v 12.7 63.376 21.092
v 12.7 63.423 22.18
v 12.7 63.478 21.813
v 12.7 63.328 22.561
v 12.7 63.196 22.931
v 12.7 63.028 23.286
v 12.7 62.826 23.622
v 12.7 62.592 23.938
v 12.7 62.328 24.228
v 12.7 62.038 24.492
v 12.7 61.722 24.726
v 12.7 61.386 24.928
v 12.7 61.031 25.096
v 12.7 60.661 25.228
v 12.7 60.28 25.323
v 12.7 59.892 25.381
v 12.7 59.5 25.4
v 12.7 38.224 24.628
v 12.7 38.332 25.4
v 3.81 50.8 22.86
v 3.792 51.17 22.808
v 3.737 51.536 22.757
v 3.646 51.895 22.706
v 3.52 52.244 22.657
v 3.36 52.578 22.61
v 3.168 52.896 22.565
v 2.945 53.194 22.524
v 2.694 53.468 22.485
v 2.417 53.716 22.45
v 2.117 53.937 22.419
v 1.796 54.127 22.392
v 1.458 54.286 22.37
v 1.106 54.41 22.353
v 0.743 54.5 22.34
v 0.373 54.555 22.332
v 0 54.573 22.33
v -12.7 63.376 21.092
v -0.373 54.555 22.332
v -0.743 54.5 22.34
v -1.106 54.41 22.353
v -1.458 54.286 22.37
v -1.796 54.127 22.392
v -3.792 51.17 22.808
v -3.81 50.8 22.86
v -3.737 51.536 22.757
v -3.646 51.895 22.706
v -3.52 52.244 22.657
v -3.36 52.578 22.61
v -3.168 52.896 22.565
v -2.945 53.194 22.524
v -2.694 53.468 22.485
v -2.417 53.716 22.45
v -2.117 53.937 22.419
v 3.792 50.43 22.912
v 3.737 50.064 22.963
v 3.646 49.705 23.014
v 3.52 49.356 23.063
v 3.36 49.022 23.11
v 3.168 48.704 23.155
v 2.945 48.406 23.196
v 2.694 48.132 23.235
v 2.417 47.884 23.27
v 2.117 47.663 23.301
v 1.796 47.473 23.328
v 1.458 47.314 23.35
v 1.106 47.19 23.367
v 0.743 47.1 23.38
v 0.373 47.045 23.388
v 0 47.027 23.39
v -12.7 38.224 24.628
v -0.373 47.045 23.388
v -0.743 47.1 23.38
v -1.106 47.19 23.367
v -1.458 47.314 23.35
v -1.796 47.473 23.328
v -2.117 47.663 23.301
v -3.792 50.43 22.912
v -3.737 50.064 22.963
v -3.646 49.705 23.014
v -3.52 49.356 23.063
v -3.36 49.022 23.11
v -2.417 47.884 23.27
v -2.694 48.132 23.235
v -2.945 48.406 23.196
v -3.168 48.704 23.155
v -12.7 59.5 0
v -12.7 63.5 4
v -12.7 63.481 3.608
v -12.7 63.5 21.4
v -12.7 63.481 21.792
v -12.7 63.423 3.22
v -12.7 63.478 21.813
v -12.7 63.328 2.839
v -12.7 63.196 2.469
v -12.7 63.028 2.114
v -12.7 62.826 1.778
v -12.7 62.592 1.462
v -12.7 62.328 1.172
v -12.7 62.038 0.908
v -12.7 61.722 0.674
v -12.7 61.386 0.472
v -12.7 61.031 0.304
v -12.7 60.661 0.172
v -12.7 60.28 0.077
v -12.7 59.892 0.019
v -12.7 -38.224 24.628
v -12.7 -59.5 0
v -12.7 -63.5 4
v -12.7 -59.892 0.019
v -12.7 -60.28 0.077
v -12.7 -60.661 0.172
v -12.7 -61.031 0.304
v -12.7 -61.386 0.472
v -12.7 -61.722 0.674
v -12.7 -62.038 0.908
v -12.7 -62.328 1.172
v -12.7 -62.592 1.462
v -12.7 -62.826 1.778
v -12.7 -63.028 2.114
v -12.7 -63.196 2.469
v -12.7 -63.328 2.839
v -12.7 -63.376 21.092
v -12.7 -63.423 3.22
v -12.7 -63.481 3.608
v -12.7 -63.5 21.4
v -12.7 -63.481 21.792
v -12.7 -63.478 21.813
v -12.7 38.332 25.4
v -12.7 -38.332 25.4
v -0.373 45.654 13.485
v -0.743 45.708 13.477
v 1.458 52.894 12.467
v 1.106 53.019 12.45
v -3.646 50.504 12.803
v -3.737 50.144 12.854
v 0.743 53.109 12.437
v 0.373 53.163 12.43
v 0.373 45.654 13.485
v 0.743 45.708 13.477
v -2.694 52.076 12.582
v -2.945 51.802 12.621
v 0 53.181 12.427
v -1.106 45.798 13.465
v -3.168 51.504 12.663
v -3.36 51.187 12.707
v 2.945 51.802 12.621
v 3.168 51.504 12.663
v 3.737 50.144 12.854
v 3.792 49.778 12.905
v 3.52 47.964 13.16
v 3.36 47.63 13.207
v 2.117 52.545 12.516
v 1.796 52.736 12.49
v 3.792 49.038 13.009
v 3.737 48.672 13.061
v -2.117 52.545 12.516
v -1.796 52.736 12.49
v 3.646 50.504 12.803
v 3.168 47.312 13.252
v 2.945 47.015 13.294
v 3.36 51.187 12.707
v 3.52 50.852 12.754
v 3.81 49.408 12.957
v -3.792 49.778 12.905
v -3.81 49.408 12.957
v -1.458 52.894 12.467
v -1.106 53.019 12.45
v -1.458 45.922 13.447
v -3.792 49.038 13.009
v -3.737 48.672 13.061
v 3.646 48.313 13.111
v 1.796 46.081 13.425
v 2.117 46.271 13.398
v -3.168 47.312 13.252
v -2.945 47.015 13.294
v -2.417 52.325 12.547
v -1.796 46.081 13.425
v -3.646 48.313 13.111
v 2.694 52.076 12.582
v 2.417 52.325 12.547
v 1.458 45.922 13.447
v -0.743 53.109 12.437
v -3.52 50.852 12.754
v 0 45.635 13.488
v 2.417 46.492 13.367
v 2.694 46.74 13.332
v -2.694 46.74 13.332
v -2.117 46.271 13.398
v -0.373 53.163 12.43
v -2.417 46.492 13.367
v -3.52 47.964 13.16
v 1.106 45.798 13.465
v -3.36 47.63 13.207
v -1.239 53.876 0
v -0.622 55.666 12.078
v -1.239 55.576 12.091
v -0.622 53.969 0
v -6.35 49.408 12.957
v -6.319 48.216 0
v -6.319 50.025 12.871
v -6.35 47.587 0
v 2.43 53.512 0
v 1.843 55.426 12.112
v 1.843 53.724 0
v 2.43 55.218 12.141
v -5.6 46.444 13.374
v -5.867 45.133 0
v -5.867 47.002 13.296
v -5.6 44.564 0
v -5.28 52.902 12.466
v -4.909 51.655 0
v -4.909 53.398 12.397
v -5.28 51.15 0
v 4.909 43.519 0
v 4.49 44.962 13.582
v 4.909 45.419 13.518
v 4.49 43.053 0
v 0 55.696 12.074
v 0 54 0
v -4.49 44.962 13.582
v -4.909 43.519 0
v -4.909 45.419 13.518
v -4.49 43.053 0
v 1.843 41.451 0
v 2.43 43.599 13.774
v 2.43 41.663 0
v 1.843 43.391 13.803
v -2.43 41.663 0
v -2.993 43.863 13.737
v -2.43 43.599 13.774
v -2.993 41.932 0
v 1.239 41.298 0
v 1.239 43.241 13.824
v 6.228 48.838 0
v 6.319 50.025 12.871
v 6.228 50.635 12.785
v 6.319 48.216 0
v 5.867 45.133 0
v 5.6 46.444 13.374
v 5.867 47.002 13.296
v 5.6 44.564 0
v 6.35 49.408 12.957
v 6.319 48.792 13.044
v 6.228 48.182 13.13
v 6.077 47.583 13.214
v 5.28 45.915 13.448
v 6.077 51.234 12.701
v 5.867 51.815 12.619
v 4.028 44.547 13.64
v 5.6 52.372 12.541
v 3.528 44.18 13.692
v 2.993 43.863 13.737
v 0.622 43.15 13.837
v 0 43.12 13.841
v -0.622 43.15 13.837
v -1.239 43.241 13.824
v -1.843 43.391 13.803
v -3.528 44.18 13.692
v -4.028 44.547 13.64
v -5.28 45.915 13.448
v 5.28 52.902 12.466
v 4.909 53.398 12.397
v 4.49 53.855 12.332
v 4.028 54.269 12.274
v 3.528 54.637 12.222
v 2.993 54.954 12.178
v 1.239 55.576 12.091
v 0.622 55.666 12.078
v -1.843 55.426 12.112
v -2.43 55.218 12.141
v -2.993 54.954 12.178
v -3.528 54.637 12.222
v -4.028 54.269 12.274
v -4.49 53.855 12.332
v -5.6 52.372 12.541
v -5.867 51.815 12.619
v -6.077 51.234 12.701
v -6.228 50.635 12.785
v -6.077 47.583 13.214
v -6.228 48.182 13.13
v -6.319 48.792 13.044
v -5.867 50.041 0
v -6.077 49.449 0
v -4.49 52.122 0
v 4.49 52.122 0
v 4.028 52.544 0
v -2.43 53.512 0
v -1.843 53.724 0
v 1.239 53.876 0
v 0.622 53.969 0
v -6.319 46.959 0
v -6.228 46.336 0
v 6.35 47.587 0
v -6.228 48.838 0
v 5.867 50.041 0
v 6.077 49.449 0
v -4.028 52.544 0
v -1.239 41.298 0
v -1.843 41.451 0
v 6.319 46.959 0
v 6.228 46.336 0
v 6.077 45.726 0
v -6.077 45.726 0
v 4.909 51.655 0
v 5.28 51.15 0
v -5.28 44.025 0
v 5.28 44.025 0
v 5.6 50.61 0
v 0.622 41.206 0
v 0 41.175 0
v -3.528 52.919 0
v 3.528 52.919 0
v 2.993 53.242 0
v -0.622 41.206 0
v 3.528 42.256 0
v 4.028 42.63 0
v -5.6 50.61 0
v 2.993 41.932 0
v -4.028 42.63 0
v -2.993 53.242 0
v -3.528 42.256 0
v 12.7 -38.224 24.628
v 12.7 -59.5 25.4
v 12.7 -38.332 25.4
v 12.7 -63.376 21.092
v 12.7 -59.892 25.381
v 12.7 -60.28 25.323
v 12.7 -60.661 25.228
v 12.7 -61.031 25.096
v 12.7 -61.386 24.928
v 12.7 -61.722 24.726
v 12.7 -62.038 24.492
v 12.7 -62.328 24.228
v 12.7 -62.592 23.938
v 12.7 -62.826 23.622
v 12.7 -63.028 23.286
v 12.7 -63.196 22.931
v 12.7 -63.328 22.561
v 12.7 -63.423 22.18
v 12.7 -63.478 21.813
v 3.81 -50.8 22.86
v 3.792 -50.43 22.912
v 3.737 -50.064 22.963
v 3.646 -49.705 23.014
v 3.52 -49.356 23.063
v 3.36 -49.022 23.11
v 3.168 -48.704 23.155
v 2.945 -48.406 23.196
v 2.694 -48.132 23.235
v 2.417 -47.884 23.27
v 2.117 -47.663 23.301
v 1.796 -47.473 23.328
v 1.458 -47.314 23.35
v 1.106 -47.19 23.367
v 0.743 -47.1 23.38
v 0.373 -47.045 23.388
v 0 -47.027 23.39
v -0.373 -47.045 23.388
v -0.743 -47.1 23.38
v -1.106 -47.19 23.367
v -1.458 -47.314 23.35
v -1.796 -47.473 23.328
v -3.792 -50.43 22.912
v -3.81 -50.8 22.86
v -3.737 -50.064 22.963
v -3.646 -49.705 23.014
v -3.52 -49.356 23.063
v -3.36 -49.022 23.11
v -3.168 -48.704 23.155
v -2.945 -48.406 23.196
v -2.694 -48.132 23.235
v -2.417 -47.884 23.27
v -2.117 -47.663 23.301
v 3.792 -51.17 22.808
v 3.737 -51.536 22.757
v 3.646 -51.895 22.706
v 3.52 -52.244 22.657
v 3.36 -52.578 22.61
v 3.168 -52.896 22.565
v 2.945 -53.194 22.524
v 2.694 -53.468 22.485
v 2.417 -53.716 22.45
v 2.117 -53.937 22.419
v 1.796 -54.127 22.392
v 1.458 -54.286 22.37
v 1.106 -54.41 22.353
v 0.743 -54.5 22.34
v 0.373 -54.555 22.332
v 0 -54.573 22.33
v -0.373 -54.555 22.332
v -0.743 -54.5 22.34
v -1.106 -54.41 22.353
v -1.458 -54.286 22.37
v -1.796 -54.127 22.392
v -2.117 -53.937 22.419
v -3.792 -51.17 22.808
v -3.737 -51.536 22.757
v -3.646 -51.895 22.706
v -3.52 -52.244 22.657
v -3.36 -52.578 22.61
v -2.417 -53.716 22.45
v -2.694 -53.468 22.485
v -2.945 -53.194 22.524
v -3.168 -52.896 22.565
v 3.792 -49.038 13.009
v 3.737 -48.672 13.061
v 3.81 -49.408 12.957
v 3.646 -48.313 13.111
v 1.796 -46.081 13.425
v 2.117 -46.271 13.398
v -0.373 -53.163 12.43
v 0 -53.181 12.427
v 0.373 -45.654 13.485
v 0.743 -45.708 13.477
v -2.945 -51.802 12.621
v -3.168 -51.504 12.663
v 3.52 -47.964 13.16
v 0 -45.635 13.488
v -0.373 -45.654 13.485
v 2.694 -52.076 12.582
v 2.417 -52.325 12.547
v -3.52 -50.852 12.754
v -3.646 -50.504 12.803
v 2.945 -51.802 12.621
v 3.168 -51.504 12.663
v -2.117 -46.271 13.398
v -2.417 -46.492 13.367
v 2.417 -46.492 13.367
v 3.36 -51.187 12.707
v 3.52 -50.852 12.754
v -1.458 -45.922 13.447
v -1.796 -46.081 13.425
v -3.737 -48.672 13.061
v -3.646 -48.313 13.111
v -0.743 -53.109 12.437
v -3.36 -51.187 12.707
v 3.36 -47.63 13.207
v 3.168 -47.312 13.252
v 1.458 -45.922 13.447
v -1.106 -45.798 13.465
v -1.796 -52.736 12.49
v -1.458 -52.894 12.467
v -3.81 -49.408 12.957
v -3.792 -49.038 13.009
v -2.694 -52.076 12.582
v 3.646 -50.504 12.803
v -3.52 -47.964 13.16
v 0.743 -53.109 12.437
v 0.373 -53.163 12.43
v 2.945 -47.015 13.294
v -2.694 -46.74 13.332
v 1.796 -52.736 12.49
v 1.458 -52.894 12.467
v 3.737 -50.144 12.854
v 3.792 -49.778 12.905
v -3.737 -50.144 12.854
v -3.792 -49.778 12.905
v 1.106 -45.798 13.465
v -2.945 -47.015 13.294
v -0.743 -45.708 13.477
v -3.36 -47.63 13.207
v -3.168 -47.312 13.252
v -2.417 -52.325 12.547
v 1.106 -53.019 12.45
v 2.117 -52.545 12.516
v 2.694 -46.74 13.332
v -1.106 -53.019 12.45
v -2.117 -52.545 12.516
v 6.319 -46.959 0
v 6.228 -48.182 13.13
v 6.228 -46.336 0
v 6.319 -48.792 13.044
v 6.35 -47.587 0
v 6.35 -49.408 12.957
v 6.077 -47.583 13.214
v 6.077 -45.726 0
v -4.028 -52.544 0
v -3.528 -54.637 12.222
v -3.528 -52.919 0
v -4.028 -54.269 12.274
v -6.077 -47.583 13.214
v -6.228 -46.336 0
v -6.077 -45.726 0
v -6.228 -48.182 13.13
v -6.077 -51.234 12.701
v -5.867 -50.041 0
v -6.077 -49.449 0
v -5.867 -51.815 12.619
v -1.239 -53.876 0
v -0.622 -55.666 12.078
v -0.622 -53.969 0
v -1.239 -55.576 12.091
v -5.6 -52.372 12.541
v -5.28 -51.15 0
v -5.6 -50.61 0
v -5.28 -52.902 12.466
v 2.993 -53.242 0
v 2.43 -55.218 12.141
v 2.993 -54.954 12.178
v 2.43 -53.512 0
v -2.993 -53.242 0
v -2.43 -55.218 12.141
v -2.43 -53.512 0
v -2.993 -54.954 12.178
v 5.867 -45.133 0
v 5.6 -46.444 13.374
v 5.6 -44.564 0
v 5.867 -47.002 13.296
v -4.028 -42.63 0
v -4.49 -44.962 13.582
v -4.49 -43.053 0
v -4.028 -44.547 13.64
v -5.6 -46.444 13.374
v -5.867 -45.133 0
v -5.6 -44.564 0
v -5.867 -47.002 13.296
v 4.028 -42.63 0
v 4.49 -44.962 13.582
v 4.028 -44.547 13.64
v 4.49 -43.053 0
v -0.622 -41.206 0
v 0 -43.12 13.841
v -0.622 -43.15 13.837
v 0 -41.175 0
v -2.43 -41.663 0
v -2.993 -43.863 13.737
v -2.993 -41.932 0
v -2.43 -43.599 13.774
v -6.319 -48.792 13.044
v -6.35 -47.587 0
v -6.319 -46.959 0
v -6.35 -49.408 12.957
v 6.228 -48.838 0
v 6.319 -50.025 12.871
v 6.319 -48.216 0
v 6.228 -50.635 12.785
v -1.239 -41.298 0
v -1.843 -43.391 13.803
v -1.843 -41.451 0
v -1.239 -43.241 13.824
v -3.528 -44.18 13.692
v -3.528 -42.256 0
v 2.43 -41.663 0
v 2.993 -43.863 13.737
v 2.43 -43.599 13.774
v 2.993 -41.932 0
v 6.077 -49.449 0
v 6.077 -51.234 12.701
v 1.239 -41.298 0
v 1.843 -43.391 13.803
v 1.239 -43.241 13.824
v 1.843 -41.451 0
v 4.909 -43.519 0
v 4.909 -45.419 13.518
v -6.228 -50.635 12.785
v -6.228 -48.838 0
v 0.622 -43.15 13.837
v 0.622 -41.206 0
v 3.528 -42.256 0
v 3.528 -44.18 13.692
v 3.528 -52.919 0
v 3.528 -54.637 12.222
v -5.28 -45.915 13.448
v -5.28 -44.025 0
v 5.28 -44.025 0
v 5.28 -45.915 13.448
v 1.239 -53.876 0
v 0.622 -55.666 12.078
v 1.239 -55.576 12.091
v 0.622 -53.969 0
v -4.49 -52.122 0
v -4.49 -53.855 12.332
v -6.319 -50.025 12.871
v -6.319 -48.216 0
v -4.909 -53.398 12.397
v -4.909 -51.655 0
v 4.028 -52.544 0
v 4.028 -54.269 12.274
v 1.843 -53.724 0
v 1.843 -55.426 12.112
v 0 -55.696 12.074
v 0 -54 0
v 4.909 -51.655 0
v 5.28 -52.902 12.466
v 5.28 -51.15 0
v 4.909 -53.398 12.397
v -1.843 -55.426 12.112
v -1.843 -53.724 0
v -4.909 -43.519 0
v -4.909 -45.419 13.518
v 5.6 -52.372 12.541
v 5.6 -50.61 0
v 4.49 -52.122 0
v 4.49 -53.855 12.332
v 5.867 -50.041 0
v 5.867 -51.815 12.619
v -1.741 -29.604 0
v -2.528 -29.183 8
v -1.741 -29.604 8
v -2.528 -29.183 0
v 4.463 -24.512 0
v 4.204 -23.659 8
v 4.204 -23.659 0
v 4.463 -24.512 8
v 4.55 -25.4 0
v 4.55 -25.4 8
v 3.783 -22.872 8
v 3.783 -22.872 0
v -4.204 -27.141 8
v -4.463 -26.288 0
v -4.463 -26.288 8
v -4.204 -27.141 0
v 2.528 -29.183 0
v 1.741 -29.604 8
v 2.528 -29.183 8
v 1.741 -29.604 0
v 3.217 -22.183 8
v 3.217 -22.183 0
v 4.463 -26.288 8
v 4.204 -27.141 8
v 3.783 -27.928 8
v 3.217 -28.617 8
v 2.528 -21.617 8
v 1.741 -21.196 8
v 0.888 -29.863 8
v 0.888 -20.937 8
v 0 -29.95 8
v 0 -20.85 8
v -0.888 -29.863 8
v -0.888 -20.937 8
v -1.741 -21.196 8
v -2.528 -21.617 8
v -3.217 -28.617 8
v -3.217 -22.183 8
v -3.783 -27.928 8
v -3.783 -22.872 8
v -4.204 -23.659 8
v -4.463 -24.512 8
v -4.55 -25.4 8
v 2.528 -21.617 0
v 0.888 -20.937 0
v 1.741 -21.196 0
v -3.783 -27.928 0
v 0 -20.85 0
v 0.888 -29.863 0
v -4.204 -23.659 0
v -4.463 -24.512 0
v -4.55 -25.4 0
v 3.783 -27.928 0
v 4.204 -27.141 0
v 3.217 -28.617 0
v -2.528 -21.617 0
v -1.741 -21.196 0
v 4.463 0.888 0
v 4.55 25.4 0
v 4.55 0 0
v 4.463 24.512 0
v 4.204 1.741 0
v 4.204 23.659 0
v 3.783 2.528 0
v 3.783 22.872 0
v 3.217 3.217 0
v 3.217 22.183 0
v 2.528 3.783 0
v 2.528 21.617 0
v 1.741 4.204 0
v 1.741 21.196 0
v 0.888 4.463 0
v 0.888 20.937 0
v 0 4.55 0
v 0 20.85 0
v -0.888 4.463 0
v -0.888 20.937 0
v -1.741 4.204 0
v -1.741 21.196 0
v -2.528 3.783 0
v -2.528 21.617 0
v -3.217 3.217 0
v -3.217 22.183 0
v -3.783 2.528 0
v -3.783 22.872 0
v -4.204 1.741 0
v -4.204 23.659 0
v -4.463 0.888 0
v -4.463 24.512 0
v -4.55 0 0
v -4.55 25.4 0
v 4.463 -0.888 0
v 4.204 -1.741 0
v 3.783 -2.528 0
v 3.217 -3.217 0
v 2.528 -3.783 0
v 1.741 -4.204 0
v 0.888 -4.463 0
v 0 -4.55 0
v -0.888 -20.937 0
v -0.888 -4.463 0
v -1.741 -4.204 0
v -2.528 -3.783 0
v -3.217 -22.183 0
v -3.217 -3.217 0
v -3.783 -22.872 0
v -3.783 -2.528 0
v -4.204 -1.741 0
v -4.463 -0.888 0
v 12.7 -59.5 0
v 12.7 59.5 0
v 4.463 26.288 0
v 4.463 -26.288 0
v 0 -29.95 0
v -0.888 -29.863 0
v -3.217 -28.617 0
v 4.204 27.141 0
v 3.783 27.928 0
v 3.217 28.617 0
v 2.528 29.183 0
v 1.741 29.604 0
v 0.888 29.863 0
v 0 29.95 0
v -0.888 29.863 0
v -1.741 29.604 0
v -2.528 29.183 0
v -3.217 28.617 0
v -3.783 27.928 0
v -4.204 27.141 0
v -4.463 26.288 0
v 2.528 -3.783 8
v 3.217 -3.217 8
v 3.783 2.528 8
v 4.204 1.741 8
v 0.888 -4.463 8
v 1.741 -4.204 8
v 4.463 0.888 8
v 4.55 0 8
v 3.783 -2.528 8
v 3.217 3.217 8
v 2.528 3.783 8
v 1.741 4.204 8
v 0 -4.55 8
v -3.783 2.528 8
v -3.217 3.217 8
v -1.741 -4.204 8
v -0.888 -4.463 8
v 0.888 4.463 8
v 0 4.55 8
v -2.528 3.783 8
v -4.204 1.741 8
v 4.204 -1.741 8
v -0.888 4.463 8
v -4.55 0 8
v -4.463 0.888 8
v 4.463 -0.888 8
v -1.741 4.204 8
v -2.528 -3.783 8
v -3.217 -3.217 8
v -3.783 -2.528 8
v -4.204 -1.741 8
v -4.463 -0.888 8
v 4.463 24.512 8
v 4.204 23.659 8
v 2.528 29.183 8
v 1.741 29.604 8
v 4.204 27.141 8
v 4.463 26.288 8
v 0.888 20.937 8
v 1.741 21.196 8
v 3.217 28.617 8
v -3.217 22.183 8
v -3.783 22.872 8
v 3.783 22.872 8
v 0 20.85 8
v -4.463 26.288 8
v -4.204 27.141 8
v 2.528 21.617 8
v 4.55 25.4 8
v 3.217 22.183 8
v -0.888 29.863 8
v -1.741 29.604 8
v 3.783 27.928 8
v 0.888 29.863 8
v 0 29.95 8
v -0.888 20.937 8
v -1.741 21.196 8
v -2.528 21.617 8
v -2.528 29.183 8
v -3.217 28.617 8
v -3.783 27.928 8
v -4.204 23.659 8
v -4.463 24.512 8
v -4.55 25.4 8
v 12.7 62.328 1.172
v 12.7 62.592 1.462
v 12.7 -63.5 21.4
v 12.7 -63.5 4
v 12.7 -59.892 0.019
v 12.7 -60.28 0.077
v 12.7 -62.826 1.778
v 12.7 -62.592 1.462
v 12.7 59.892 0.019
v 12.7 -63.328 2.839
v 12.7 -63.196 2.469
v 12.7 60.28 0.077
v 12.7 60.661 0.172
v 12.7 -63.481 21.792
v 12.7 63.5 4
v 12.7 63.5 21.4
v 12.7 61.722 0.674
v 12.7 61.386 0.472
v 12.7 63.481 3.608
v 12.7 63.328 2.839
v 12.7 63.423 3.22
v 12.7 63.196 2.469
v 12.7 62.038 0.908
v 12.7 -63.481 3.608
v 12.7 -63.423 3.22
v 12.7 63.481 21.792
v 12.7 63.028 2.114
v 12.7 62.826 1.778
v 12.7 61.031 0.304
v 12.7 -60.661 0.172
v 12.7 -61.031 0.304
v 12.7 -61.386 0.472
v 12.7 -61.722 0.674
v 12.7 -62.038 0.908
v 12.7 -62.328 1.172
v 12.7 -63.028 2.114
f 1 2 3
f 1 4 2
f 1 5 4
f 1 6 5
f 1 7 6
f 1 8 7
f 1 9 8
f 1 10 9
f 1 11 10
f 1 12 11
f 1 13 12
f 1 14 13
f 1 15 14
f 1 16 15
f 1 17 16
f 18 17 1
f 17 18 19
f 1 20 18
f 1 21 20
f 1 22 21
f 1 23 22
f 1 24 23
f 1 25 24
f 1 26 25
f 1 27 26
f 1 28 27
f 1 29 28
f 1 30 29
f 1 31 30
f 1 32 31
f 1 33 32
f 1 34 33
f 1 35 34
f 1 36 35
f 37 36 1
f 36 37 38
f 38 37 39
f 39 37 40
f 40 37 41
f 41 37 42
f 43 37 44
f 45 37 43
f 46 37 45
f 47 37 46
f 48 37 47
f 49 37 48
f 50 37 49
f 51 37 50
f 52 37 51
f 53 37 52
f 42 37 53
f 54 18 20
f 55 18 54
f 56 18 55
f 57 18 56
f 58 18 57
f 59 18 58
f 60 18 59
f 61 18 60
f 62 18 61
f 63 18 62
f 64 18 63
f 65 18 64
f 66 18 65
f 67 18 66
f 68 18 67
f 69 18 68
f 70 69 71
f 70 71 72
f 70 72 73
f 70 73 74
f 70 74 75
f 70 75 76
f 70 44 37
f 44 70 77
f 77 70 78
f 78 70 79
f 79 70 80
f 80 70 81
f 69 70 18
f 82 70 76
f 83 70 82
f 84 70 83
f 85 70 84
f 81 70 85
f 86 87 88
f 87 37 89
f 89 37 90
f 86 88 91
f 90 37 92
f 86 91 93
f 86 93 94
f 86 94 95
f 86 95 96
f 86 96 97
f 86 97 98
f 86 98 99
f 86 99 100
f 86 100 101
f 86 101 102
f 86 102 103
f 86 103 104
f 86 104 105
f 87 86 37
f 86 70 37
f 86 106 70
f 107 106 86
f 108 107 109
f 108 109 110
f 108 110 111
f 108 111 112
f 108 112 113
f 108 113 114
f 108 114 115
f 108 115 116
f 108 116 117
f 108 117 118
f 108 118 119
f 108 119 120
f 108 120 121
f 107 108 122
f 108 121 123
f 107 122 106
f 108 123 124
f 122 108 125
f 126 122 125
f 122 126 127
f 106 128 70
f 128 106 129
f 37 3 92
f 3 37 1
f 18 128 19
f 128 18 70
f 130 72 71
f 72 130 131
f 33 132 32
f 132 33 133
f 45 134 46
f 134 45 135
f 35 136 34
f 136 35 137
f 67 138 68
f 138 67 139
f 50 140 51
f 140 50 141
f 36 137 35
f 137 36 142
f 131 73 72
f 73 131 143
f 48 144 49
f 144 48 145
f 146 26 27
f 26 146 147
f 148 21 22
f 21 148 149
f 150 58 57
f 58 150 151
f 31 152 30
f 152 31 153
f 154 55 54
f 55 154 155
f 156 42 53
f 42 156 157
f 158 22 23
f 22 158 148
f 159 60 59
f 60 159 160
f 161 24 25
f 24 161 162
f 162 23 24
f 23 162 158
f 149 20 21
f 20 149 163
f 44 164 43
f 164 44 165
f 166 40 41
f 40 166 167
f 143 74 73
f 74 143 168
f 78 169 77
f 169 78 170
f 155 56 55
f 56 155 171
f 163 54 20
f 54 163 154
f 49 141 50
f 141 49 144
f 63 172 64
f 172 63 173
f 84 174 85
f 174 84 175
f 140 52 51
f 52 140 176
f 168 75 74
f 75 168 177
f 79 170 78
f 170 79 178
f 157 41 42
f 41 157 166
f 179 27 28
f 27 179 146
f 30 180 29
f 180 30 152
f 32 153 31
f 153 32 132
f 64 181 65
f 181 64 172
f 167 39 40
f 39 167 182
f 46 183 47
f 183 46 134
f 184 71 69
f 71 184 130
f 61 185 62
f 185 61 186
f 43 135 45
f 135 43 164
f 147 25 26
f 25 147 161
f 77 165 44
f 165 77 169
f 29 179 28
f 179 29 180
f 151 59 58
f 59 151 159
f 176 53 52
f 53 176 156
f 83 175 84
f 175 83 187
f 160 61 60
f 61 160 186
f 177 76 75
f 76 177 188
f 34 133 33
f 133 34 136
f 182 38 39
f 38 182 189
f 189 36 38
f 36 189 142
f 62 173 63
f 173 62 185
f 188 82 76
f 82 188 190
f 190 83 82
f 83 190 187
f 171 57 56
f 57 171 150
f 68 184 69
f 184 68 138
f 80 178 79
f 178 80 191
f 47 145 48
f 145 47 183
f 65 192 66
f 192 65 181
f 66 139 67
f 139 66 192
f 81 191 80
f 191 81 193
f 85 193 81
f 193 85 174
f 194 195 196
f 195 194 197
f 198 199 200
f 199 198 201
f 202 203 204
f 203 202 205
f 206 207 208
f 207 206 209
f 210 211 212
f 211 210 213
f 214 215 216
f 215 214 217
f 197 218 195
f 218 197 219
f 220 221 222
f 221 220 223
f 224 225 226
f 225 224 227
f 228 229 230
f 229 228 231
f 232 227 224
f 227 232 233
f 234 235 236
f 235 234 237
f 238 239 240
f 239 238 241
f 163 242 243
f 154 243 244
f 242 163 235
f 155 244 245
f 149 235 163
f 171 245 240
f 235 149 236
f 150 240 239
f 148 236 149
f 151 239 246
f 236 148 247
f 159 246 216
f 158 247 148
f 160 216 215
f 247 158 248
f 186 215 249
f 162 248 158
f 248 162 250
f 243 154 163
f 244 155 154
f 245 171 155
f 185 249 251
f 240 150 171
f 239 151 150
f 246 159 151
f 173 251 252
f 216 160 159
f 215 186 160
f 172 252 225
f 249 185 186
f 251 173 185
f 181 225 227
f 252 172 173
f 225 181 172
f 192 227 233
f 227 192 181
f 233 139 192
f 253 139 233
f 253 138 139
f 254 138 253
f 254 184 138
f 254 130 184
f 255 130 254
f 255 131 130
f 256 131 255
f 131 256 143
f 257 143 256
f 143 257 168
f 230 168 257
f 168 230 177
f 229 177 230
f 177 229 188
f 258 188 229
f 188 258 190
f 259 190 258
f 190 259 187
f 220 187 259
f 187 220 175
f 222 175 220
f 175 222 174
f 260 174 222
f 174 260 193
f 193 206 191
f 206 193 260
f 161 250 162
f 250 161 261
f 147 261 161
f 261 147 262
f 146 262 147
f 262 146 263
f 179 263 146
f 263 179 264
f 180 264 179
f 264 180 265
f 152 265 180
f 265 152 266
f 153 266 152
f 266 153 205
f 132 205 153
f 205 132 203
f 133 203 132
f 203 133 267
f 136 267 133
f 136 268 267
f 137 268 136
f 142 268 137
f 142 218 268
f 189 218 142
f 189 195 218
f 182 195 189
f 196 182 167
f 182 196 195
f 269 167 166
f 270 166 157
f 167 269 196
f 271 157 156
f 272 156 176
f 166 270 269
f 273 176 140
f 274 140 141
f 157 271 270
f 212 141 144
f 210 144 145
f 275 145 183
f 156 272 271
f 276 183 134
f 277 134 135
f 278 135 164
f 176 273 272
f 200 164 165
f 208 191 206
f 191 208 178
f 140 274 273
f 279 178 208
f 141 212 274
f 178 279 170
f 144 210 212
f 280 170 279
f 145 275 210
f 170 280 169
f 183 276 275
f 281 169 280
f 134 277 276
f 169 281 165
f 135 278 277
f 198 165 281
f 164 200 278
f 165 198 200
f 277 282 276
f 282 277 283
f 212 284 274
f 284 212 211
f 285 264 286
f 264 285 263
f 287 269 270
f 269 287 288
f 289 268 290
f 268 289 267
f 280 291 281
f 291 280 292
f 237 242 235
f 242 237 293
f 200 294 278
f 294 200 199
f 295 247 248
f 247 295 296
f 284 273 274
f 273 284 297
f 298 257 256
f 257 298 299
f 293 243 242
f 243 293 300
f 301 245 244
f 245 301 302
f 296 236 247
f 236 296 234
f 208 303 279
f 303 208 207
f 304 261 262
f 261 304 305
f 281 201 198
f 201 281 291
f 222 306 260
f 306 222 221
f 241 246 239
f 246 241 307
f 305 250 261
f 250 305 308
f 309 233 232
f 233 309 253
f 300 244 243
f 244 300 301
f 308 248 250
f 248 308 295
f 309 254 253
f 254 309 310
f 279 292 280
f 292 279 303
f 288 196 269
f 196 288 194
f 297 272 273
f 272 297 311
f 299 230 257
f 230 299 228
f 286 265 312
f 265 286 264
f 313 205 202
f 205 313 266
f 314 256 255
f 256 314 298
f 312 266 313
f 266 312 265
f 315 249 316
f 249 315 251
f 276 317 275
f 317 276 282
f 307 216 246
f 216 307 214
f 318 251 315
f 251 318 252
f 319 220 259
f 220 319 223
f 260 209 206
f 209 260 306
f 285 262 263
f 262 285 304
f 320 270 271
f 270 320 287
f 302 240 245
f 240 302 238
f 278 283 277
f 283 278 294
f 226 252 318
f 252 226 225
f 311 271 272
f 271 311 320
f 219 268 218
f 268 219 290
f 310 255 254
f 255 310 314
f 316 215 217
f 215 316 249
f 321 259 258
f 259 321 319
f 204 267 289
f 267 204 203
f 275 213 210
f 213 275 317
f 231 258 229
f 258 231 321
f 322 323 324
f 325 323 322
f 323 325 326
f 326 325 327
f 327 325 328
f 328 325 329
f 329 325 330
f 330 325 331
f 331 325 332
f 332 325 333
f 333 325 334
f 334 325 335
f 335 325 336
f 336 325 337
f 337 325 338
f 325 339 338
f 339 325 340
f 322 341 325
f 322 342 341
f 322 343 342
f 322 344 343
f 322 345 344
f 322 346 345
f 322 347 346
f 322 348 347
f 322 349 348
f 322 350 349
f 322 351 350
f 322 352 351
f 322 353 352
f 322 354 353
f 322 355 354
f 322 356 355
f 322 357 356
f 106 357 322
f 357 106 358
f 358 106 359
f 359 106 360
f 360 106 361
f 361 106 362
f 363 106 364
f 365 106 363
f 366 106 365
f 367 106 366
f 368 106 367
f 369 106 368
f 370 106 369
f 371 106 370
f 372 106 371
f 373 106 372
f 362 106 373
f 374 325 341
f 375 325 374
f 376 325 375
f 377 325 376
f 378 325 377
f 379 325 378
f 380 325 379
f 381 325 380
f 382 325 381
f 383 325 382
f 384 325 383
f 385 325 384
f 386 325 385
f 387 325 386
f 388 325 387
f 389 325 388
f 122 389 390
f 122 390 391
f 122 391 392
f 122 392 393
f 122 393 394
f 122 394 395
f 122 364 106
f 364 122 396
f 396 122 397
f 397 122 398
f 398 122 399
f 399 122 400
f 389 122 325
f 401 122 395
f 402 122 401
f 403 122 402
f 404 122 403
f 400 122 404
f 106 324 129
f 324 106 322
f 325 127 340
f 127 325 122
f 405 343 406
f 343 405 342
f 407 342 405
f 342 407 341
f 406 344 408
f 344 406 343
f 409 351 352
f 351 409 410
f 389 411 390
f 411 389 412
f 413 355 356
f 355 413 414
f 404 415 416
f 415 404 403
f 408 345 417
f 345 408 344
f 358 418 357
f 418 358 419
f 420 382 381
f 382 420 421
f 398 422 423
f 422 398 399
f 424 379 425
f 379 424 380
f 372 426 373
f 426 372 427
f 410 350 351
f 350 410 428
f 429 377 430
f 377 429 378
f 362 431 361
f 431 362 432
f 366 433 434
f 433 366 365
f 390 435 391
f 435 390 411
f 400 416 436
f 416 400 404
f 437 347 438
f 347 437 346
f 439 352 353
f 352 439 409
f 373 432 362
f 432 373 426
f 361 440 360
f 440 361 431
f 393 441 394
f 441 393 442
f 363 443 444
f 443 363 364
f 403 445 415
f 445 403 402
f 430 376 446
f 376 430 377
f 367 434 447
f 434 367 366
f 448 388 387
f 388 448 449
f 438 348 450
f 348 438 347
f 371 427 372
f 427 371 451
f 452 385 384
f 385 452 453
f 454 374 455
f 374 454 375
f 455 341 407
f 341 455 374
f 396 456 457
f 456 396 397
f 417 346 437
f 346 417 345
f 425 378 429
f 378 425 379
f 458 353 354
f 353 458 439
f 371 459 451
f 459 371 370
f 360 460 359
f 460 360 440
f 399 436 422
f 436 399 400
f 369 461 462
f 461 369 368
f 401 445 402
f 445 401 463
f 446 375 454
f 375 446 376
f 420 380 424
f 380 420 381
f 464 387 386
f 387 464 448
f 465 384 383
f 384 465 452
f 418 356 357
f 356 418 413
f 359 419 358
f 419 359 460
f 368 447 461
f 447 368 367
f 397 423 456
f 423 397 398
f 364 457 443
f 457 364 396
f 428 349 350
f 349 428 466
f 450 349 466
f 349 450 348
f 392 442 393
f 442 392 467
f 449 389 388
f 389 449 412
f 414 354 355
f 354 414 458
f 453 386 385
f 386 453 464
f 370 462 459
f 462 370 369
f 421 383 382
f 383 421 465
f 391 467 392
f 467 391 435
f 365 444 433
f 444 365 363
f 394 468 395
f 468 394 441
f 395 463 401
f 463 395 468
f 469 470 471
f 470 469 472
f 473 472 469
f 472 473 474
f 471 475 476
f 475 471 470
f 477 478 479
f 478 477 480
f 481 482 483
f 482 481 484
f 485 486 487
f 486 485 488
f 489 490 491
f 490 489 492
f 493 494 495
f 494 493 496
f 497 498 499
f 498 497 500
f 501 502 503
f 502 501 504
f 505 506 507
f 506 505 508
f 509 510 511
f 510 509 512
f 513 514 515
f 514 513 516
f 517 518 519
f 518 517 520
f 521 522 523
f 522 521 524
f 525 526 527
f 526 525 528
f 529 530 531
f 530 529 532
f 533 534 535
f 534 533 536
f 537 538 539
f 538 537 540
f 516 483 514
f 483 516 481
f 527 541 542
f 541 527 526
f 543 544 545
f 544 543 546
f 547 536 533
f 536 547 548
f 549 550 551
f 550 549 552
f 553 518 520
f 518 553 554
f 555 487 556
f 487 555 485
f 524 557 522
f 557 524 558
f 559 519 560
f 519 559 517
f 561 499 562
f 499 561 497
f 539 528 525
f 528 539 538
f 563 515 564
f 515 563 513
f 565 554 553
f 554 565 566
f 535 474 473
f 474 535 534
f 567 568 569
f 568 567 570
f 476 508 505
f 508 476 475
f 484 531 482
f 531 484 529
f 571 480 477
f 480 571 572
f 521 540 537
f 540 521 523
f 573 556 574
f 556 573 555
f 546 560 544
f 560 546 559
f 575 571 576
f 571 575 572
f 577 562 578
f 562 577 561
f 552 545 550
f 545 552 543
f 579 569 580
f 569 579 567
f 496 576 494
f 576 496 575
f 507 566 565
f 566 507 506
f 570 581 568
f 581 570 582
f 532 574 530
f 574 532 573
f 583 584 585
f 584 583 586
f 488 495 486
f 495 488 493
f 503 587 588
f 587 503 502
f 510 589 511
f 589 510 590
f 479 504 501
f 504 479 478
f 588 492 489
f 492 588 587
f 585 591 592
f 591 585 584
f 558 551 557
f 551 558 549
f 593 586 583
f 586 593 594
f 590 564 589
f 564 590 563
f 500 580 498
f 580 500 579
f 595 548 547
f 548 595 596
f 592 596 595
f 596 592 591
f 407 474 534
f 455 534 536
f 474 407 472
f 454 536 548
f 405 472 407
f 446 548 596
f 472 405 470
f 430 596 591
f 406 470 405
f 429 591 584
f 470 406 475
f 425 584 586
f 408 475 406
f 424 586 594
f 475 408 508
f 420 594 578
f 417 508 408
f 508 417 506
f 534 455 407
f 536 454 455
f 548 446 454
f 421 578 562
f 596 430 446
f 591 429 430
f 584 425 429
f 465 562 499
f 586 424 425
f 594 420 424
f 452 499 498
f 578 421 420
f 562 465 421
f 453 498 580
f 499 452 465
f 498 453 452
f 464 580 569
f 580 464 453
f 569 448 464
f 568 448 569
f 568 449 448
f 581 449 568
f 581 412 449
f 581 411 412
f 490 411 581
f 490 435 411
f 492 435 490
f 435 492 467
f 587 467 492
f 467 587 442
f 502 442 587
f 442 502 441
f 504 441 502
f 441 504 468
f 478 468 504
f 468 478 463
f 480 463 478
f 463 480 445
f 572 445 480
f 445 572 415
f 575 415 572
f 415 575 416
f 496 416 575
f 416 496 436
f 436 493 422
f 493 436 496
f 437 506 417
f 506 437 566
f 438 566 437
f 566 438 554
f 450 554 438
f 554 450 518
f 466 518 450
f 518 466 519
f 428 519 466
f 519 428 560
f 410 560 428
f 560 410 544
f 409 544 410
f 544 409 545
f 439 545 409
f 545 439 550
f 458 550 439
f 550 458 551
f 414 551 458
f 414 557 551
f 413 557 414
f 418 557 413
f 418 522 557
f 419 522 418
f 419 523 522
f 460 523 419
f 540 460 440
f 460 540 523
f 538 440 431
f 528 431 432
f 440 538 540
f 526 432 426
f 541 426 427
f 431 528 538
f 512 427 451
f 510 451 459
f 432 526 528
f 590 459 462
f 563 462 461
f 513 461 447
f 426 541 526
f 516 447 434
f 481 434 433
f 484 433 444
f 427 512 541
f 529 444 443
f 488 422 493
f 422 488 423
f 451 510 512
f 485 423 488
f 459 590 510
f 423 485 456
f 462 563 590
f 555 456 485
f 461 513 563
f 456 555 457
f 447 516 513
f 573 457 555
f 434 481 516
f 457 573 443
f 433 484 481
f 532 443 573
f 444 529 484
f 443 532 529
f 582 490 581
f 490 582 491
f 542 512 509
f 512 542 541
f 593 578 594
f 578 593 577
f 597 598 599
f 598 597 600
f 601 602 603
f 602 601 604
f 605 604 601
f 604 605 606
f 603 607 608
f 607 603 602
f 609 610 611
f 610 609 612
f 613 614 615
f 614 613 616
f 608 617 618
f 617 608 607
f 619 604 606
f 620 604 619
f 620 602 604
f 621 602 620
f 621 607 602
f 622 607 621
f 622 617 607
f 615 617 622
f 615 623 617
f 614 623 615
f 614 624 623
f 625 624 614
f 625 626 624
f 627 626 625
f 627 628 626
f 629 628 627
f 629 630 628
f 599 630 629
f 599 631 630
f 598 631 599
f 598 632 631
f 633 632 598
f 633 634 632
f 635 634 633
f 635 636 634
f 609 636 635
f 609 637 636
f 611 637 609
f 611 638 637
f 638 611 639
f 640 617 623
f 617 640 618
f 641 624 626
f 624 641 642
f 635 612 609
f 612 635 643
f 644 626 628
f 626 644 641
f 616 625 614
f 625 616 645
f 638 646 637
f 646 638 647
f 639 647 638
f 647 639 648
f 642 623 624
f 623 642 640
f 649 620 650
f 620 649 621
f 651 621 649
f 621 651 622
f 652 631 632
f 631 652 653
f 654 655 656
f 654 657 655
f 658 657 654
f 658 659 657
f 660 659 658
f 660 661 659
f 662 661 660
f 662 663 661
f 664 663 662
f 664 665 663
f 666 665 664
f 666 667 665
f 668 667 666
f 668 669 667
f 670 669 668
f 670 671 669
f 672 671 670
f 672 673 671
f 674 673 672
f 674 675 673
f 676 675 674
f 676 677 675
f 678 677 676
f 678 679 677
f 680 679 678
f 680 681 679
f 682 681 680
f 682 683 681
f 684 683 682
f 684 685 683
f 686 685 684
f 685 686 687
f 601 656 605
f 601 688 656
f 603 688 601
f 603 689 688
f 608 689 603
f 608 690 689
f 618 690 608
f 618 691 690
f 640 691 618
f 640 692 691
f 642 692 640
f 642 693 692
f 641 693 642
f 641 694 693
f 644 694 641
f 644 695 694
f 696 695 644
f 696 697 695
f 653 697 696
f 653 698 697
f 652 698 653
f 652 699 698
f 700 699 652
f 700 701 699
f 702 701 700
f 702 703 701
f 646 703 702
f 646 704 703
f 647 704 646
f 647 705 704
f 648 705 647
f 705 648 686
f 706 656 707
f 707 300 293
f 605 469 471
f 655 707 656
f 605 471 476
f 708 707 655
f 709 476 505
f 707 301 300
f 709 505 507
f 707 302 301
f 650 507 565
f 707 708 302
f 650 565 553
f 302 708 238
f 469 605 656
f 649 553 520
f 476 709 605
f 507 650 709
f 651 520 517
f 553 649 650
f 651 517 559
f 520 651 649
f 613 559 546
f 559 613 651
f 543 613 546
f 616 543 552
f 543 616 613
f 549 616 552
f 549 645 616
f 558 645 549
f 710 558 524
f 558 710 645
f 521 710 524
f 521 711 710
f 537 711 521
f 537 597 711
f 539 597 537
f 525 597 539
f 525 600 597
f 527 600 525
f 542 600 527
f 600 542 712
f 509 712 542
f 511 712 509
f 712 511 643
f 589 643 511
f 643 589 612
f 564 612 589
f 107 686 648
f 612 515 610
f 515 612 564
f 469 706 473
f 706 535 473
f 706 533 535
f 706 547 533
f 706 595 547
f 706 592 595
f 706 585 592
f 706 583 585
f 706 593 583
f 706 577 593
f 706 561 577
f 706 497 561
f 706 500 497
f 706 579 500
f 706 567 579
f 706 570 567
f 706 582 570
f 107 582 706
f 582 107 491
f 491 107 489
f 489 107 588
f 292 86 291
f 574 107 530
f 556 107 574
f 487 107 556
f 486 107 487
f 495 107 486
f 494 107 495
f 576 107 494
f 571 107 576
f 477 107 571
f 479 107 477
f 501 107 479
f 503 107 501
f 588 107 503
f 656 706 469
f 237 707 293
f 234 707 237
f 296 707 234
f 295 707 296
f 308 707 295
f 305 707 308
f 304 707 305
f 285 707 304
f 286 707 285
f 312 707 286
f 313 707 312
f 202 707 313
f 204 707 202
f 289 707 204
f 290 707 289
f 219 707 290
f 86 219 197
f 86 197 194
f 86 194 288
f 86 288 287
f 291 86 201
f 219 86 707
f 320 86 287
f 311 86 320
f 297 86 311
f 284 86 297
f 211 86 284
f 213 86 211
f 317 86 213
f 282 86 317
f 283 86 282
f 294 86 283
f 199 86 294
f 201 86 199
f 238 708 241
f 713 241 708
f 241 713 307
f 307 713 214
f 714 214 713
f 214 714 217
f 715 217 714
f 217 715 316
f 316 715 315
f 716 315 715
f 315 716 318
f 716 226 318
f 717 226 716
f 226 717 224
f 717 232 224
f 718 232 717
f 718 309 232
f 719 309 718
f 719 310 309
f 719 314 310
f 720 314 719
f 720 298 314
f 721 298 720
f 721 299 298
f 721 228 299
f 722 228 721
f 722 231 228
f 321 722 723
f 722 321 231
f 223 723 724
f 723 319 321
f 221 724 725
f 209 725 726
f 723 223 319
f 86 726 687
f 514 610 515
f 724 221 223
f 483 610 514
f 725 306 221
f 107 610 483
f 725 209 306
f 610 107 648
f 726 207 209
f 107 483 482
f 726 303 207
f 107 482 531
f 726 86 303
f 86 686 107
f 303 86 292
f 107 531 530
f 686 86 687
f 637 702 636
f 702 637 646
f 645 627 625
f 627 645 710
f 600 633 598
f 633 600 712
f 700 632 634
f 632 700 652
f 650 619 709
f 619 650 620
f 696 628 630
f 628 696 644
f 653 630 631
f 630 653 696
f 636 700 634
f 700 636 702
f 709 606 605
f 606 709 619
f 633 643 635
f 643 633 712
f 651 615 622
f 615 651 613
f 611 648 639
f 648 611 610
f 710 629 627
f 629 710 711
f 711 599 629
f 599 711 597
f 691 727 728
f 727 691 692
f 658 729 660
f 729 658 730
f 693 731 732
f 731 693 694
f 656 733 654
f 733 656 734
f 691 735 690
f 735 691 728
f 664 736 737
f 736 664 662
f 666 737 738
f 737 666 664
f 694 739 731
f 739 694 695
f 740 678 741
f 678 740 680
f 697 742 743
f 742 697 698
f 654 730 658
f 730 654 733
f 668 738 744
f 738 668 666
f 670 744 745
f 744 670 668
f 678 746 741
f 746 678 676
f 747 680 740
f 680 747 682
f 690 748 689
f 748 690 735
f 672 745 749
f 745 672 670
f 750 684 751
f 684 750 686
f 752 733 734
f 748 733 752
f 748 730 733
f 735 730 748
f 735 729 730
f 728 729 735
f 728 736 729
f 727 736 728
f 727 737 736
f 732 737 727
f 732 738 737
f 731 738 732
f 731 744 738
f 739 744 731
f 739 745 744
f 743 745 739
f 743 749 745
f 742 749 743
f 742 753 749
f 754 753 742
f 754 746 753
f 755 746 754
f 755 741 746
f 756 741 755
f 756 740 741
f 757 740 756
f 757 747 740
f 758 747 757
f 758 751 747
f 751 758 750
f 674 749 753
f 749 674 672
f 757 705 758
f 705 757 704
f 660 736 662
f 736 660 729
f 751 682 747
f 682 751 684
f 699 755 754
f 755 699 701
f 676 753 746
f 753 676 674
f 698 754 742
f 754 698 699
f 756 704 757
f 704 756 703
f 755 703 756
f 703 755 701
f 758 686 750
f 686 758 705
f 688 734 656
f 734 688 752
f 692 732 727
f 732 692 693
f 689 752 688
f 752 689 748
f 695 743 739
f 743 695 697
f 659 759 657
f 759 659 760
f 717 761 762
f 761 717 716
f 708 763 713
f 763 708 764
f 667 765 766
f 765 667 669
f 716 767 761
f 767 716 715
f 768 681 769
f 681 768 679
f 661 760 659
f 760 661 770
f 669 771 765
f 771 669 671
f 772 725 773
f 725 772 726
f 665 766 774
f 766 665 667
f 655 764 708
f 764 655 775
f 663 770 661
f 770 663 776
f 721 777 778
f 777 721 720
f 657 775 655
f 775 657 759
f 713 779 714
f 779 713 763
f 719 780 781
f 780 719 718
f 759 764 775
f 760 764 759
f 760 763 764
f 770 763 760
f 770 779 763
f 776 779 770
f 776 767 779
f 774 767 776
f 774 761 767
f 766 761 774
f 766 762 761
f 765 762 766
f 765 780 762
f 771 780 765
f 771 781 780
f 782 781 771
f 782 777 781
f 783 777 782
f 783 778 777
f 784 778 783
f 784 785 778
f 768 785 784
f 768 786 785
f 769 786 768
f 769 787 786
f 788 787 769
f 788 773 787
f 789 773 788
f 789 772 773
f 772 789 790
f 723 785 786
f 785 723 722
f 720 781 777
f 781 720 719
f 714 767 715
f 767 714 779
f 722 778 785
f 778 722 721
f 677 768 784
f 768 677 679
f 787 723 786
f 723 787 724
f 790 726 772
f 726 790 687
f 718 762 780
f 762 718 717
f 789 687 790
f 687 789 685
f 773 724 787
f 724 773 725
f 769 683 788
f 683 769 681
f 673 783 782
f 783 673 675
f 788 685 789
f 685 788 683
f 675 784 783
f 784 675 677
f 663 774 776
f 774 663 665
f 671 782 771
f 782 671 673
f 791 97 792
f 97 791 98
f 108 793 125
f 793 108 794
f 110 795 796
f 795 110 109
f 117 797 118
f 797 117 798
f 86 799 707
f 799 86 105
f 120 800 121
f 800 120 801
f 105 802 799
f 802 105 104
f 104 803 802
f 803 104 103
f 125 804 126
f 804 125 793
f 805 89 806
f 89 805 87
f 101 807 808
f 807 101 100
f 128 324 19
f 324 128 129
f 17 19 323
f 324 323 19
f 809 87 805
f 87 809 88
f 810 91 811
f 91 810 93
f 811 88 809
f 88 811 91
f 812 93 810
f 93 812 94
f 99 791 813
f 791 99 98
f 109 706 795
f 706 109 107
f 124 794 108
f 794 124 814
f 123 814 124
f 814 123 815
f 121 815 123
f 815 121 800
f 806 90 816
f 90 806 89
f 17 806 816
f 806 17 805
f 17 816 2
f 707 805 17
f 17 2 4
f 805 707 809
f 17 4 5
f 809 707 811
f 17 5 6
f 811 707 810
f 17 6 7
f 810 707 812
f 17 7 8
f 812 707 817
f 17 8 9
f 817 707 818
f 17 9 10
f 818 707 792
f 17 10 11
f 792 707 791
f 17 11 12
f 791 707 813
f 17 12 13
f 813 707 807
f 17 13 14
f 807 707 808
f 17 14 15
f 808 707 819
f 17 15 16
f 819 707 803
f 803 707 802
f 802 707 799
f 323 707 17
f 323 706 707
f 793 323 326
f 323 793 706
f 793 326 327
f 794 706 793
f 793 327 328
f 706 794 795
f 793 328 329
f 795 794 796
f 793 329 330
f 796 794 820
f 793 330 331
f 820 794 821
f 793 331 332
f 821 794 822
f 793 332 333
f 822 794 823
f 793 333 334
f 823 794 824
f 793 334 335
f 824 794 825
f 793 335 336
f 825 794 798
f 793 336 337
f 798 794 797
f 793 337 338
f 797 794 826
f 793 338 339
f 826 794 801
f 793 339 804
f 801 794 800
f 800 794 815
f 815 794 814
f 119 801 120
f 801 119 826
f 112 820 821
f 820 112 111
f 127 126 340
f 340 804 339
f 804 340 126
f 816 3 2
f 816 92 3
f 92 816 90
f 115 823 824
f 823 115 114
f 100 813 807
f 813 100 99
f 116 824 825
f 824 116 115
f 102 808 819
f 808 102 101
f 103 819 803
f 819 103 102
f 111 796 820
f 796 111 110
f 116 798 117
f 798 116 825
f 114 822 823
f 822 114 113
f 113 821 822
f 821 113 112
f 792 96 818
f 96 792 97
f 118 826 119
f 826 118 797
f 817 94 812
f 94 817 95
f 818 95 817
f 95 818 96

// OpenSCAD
difference() {
translate([0,0,25.4/2])
rotate([0,90,0])
translate([0,0,-25.4/2])
cube_center([25.4,5*25.4,25.4],r=4);
    
for(i=[-1,1])
translate([0,-2*25.4*i,25.4*0.9])
rotate([8*i,0,0]) {
cube_center([25.4,25.4,21.5*25.4]);
cylinder(d=0.3*25.4,h=100,$fn=64,center=true);
translate([0,0,-50-10])
cylinder(d=0.5*25.4,h=100,$fn=64,center=true);
}

for(i=[-1,0,1])
translate([0,i*1*25.4,0])
cylinder(d=9.1,h=8,$fn=32);
}

module cube_center(dims,r=0,$fn=64) {
    if(r==0) {
        translate([-dims[0]/2, -dims[1]/2, 0])
        cube(dims);
    } else {
        minkowski() {
            translate([-(dims[0]-2*r)/2, -(dims[1]-2*r)/2, 0])
            cube([dims[0]-2*r,dims[1]-2*r,dims[2]]);
            cylinder(r=r,$fn=$fn,h=0.0001);
        }
    }
}
